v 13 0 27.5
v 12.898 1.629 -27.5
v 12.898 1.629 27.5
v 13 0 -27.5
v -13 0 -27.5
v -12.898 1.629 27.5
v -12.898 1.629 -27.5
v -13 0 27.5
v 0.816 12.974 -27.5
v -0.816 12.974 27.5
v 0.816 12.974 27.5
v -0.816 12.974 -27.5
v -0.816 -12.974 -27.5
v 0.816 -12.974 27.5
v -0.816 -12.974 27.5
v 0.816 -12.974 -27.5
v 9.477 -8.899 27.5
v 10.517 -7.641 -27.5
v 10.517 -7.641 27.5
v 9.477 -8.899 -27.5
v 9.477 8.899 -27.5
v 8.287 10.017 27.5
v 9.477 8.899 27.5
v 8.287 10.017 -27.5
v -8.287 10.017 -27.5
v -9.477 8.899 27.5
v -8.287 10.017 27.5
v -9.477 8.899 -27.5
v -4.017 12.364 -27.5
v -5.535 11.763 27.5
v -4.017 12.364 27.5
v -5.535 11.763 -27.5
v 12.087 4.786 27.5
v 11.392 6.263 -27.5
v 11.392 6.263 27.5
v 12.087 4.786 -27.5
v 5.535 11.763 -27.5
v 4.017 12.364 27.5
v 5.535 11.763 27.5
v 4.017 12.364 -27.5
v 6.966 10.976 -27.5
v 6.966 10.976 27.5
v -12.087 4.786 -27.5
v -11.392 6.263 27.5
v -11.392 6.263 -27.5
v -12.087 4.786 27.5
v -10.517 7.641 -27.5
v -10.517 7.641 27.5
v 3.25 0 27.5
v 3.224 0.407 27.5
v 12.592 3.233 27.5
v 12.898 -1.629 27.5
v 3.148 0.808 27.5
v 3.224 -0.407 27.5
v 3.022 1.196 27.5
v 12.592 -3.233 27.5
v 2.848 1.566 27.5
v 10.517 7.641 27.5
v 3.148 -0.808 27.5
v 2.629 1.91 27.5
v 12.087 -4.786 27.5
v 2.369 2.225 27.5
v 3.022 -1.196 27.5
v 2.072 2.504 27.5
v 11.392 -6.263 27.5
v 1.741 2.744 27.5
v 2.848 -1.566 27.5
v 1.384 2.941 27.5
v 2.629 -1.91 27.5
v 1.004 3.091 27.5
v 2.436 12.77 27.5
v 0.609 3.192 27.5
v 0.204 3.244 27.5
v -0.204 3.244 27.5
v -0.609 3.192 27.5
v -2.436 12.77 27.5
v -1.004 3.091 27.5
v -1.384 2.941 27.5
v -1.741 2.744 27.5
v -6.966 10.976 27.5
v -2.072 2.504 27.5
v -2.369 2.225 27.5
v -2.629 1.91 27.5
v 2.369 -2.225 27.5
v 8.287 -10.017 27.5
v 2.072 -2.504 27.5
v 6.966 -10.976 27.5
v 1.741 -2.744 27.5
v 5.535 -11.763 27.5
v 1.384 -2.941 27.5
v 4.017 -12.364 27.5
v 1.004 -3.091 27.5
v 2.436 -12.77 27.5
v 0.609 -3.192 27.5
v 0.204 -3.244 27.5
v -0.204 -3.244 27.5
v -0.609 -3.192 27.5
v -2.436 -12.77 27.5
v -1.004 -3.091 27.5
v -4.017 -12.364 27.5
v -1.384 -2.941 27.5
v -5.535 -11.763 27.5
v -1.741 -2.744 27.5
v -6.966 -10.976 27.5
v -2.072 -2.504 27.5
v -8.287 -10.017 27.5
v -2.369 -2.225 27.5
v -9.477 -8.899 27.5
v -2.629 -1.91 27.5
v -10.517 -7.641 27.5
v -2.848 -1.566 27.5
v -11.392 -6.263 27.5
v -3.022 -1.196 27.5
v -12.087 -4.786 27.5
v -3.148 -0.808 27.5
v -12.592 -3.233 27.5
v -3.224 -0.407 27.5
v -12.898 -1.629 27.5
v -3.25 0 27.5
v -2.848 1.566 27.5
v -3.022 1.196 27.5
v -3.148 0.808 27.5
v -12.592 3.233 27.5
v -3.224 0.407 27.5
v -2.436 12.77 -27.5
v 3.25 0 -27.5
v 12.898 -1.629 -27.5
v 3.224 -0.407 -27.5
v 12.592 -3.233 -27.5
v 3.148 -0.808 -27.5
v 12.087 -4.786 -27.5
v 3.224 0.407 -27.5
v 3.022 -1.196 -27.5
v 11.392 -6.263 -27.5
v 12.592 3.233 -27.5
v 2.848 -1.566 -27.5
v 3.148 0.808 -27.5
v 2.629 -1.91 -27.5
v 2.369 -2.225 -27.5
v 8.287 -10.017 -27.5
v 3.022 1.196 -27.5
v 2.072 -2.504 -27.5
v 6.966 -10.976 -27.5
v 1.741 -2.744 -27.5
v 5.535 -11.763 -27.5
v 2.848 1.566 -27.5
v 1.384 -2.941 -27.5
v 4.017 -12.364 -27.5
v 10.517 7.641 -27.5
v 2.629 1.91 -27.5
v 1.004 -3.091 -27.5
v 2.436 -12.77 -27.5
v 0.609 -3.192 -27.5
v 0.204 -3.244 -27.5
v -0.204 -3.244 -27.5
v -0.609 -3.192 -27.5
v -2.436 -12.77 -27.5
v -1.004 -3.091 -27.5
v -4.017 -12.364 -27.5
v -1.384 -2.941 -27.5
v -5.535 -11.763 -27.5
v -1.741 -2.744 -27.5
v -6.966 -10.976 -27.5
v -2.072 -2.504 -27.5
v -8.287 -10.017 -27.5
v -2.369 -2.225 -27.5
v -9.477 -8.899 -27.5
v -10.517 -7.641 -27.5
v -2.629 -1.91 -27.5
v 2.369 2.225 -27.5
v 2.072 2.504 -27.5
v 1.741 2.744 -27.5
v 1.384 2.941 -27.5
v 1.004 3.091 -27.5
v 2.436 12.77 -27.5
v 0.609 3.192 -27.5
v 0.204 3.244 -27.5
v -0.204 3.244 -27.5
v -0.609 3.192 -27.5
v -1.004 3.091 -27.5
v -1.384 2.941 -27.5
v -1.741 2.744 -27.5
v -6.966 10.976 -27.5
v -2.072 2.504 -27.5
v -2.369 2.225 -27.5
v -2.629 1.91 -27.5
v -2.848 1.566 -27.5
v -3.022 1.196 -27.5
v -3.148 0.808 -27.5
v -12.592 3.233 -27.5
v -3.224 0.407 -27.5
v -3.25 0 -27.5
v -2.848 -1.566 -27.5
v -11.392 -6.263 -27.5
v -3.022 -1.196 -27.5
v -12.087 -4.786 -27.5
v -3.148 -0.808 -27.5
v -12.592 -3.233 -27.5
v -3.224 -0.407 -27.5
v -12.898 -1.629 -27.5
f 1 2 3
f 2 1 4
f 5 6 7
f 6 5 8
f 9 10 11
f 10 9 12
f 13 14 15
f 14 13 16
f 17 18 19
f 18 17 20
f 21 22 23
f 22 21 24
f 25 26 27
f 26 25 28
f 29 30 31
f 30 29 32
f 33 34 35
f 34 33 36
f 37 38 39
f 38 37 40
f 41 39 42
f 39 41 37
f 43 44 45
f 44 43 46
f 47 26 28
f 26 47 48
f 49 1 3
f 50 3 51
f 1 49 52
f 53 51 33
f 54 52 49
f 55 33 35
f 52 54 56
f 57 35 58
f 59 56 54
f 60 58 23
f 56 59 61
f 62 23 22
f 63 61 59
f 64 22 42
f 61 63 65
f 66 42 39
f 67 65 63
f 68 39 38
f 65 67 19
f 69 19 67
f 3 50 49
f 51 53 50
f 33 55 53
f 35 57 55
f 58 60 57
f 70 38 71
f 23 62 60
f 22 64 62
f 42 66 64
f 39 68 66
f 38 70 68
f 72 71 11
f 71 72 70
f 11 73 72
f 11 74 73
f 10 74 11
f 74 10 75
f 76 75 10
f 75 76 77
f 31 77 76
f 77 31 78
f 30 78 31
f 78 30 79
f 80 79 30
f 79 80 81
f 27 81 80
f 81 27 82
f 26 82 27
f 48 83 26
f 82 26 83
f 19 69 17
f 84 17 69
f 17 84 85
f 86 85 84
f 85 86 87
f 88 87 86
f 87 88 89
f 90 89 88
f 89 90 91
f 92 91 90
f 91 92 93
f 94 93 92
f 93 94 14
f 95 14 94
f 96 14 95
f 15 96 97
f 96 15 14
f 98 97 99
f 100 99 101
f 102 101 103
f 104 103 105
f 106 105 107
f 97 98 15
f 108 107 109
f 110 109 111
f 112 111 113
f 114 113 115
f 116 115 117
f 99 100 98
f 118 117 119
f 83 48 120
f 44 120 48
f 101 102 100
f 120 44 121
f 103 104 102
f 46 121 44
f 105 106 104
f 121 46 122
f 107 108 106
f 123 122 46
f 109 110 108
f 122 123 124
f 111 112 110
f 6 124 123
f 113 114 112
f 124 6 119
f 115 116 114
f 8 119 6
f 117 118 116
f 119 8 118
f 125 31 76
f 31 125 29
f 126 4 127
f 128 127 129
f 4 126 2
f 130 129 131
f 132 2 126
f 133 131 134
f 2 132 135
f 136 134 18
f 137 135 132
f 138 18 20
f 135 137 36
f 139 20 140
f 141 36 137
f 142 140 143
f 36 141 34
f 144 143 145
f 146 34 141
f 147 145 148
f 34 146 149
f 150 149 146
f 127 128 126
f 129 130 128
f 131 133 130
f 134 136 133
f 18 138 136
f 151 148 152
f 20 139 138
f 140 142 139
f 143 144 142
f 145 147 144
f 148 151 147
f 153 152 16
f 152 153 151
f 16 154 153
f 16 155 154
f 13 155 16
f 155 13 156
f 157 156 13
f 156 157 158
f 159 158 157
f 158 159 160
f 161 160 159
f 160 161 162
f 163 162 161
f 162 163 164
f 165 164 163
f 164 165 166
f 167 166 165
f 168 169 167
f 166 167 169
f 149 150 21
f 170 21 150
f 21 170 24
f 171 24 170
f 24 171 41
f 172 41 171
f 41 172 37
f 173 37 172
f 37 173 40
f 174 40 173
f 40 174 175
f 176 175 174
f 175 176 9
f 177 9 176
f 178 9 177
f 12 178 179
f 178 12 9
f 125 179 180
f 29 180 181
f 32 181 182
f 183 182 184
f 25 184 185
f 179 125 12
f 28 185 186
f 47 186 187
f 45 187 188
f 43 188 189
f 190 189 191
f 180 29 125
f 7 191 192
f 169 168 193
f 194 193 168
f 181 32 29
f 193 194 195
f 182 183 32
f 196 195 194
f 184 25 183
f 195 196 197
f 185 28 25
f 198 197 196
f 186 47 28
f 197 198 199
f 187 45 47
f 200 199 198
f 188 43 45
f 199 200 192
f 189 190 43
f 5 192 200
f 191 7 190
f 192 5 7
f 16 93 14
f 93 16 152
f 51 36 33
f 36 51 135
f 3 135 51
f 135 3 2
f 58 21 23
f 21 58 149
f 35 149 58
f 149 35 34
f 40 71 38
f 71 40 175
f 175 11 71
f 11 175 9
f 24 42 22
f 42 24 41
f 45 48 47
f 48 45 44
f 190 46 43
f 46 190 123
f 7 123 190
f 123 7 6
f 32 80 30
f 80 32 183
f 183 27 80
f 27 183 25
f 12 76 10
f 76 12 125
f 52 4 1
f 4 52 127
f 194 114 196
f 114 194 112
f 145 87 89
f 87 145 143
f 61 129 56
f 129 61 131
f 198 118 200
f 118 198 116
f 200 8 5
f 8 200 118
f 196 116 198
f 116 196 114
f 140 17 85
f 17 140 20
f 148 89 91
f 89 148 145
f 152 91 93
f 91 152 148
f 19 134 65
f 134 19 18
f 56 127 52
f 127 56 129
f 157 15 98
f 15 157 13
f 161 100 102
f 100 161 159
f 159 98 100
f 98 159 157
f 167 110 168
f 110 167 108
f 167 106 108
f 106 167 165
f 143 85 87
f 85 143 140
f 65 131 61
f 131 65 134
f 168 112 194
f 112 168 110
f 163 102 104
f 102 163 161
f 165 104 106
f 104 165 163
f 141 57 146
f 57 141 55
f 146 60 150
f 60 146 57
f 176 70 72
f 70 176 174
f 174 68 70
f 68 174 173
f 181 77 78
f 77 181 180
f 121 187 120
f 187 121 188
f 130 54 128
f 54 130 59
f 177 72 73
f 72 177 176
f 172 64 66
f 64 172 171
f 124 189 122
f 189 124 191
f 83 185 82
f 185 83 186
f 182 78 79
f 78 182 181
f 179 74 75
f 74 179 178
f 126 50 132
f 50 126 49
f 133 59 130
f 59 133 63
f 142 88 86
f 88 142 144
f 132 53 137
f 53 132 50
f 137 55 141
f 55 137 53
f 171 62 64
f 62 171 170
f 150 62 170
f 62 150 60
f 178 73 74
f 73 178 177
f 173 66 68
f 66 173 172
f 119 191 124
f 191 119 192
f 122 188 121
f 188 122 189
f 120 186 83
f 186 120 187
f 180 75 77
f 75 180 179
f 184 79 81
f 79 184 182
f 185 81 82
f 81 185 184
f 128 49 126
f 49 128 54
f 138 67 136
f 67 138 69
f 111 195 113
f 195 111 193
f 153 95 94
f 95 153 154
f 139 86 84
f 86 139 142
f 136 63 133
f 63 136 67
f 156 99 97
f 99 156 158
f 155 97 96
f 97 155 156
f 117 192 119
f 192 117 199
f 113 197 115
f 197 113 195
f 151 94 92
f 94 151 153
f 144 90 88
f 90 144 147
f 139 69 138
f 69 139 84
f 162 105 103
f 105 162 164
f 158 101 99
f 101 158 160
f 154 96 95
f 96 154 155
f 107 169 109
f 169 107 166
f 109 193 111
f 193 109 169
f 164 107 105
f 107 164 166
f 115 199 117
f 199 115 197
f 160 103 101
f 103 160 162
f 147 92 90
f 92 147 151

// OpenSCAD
$fn = 50;


difference() {
	union() {
		translate(v = [0, 0, -27.5000000000]) {
			cylinder(h = 55, r = 13.0000000000);
		}
	}
	union() {
		translate(v = [0, 0, -100.0000000000]) {
			cylinder(h = 200, r = 3.2500000000);
		}
	}
}
